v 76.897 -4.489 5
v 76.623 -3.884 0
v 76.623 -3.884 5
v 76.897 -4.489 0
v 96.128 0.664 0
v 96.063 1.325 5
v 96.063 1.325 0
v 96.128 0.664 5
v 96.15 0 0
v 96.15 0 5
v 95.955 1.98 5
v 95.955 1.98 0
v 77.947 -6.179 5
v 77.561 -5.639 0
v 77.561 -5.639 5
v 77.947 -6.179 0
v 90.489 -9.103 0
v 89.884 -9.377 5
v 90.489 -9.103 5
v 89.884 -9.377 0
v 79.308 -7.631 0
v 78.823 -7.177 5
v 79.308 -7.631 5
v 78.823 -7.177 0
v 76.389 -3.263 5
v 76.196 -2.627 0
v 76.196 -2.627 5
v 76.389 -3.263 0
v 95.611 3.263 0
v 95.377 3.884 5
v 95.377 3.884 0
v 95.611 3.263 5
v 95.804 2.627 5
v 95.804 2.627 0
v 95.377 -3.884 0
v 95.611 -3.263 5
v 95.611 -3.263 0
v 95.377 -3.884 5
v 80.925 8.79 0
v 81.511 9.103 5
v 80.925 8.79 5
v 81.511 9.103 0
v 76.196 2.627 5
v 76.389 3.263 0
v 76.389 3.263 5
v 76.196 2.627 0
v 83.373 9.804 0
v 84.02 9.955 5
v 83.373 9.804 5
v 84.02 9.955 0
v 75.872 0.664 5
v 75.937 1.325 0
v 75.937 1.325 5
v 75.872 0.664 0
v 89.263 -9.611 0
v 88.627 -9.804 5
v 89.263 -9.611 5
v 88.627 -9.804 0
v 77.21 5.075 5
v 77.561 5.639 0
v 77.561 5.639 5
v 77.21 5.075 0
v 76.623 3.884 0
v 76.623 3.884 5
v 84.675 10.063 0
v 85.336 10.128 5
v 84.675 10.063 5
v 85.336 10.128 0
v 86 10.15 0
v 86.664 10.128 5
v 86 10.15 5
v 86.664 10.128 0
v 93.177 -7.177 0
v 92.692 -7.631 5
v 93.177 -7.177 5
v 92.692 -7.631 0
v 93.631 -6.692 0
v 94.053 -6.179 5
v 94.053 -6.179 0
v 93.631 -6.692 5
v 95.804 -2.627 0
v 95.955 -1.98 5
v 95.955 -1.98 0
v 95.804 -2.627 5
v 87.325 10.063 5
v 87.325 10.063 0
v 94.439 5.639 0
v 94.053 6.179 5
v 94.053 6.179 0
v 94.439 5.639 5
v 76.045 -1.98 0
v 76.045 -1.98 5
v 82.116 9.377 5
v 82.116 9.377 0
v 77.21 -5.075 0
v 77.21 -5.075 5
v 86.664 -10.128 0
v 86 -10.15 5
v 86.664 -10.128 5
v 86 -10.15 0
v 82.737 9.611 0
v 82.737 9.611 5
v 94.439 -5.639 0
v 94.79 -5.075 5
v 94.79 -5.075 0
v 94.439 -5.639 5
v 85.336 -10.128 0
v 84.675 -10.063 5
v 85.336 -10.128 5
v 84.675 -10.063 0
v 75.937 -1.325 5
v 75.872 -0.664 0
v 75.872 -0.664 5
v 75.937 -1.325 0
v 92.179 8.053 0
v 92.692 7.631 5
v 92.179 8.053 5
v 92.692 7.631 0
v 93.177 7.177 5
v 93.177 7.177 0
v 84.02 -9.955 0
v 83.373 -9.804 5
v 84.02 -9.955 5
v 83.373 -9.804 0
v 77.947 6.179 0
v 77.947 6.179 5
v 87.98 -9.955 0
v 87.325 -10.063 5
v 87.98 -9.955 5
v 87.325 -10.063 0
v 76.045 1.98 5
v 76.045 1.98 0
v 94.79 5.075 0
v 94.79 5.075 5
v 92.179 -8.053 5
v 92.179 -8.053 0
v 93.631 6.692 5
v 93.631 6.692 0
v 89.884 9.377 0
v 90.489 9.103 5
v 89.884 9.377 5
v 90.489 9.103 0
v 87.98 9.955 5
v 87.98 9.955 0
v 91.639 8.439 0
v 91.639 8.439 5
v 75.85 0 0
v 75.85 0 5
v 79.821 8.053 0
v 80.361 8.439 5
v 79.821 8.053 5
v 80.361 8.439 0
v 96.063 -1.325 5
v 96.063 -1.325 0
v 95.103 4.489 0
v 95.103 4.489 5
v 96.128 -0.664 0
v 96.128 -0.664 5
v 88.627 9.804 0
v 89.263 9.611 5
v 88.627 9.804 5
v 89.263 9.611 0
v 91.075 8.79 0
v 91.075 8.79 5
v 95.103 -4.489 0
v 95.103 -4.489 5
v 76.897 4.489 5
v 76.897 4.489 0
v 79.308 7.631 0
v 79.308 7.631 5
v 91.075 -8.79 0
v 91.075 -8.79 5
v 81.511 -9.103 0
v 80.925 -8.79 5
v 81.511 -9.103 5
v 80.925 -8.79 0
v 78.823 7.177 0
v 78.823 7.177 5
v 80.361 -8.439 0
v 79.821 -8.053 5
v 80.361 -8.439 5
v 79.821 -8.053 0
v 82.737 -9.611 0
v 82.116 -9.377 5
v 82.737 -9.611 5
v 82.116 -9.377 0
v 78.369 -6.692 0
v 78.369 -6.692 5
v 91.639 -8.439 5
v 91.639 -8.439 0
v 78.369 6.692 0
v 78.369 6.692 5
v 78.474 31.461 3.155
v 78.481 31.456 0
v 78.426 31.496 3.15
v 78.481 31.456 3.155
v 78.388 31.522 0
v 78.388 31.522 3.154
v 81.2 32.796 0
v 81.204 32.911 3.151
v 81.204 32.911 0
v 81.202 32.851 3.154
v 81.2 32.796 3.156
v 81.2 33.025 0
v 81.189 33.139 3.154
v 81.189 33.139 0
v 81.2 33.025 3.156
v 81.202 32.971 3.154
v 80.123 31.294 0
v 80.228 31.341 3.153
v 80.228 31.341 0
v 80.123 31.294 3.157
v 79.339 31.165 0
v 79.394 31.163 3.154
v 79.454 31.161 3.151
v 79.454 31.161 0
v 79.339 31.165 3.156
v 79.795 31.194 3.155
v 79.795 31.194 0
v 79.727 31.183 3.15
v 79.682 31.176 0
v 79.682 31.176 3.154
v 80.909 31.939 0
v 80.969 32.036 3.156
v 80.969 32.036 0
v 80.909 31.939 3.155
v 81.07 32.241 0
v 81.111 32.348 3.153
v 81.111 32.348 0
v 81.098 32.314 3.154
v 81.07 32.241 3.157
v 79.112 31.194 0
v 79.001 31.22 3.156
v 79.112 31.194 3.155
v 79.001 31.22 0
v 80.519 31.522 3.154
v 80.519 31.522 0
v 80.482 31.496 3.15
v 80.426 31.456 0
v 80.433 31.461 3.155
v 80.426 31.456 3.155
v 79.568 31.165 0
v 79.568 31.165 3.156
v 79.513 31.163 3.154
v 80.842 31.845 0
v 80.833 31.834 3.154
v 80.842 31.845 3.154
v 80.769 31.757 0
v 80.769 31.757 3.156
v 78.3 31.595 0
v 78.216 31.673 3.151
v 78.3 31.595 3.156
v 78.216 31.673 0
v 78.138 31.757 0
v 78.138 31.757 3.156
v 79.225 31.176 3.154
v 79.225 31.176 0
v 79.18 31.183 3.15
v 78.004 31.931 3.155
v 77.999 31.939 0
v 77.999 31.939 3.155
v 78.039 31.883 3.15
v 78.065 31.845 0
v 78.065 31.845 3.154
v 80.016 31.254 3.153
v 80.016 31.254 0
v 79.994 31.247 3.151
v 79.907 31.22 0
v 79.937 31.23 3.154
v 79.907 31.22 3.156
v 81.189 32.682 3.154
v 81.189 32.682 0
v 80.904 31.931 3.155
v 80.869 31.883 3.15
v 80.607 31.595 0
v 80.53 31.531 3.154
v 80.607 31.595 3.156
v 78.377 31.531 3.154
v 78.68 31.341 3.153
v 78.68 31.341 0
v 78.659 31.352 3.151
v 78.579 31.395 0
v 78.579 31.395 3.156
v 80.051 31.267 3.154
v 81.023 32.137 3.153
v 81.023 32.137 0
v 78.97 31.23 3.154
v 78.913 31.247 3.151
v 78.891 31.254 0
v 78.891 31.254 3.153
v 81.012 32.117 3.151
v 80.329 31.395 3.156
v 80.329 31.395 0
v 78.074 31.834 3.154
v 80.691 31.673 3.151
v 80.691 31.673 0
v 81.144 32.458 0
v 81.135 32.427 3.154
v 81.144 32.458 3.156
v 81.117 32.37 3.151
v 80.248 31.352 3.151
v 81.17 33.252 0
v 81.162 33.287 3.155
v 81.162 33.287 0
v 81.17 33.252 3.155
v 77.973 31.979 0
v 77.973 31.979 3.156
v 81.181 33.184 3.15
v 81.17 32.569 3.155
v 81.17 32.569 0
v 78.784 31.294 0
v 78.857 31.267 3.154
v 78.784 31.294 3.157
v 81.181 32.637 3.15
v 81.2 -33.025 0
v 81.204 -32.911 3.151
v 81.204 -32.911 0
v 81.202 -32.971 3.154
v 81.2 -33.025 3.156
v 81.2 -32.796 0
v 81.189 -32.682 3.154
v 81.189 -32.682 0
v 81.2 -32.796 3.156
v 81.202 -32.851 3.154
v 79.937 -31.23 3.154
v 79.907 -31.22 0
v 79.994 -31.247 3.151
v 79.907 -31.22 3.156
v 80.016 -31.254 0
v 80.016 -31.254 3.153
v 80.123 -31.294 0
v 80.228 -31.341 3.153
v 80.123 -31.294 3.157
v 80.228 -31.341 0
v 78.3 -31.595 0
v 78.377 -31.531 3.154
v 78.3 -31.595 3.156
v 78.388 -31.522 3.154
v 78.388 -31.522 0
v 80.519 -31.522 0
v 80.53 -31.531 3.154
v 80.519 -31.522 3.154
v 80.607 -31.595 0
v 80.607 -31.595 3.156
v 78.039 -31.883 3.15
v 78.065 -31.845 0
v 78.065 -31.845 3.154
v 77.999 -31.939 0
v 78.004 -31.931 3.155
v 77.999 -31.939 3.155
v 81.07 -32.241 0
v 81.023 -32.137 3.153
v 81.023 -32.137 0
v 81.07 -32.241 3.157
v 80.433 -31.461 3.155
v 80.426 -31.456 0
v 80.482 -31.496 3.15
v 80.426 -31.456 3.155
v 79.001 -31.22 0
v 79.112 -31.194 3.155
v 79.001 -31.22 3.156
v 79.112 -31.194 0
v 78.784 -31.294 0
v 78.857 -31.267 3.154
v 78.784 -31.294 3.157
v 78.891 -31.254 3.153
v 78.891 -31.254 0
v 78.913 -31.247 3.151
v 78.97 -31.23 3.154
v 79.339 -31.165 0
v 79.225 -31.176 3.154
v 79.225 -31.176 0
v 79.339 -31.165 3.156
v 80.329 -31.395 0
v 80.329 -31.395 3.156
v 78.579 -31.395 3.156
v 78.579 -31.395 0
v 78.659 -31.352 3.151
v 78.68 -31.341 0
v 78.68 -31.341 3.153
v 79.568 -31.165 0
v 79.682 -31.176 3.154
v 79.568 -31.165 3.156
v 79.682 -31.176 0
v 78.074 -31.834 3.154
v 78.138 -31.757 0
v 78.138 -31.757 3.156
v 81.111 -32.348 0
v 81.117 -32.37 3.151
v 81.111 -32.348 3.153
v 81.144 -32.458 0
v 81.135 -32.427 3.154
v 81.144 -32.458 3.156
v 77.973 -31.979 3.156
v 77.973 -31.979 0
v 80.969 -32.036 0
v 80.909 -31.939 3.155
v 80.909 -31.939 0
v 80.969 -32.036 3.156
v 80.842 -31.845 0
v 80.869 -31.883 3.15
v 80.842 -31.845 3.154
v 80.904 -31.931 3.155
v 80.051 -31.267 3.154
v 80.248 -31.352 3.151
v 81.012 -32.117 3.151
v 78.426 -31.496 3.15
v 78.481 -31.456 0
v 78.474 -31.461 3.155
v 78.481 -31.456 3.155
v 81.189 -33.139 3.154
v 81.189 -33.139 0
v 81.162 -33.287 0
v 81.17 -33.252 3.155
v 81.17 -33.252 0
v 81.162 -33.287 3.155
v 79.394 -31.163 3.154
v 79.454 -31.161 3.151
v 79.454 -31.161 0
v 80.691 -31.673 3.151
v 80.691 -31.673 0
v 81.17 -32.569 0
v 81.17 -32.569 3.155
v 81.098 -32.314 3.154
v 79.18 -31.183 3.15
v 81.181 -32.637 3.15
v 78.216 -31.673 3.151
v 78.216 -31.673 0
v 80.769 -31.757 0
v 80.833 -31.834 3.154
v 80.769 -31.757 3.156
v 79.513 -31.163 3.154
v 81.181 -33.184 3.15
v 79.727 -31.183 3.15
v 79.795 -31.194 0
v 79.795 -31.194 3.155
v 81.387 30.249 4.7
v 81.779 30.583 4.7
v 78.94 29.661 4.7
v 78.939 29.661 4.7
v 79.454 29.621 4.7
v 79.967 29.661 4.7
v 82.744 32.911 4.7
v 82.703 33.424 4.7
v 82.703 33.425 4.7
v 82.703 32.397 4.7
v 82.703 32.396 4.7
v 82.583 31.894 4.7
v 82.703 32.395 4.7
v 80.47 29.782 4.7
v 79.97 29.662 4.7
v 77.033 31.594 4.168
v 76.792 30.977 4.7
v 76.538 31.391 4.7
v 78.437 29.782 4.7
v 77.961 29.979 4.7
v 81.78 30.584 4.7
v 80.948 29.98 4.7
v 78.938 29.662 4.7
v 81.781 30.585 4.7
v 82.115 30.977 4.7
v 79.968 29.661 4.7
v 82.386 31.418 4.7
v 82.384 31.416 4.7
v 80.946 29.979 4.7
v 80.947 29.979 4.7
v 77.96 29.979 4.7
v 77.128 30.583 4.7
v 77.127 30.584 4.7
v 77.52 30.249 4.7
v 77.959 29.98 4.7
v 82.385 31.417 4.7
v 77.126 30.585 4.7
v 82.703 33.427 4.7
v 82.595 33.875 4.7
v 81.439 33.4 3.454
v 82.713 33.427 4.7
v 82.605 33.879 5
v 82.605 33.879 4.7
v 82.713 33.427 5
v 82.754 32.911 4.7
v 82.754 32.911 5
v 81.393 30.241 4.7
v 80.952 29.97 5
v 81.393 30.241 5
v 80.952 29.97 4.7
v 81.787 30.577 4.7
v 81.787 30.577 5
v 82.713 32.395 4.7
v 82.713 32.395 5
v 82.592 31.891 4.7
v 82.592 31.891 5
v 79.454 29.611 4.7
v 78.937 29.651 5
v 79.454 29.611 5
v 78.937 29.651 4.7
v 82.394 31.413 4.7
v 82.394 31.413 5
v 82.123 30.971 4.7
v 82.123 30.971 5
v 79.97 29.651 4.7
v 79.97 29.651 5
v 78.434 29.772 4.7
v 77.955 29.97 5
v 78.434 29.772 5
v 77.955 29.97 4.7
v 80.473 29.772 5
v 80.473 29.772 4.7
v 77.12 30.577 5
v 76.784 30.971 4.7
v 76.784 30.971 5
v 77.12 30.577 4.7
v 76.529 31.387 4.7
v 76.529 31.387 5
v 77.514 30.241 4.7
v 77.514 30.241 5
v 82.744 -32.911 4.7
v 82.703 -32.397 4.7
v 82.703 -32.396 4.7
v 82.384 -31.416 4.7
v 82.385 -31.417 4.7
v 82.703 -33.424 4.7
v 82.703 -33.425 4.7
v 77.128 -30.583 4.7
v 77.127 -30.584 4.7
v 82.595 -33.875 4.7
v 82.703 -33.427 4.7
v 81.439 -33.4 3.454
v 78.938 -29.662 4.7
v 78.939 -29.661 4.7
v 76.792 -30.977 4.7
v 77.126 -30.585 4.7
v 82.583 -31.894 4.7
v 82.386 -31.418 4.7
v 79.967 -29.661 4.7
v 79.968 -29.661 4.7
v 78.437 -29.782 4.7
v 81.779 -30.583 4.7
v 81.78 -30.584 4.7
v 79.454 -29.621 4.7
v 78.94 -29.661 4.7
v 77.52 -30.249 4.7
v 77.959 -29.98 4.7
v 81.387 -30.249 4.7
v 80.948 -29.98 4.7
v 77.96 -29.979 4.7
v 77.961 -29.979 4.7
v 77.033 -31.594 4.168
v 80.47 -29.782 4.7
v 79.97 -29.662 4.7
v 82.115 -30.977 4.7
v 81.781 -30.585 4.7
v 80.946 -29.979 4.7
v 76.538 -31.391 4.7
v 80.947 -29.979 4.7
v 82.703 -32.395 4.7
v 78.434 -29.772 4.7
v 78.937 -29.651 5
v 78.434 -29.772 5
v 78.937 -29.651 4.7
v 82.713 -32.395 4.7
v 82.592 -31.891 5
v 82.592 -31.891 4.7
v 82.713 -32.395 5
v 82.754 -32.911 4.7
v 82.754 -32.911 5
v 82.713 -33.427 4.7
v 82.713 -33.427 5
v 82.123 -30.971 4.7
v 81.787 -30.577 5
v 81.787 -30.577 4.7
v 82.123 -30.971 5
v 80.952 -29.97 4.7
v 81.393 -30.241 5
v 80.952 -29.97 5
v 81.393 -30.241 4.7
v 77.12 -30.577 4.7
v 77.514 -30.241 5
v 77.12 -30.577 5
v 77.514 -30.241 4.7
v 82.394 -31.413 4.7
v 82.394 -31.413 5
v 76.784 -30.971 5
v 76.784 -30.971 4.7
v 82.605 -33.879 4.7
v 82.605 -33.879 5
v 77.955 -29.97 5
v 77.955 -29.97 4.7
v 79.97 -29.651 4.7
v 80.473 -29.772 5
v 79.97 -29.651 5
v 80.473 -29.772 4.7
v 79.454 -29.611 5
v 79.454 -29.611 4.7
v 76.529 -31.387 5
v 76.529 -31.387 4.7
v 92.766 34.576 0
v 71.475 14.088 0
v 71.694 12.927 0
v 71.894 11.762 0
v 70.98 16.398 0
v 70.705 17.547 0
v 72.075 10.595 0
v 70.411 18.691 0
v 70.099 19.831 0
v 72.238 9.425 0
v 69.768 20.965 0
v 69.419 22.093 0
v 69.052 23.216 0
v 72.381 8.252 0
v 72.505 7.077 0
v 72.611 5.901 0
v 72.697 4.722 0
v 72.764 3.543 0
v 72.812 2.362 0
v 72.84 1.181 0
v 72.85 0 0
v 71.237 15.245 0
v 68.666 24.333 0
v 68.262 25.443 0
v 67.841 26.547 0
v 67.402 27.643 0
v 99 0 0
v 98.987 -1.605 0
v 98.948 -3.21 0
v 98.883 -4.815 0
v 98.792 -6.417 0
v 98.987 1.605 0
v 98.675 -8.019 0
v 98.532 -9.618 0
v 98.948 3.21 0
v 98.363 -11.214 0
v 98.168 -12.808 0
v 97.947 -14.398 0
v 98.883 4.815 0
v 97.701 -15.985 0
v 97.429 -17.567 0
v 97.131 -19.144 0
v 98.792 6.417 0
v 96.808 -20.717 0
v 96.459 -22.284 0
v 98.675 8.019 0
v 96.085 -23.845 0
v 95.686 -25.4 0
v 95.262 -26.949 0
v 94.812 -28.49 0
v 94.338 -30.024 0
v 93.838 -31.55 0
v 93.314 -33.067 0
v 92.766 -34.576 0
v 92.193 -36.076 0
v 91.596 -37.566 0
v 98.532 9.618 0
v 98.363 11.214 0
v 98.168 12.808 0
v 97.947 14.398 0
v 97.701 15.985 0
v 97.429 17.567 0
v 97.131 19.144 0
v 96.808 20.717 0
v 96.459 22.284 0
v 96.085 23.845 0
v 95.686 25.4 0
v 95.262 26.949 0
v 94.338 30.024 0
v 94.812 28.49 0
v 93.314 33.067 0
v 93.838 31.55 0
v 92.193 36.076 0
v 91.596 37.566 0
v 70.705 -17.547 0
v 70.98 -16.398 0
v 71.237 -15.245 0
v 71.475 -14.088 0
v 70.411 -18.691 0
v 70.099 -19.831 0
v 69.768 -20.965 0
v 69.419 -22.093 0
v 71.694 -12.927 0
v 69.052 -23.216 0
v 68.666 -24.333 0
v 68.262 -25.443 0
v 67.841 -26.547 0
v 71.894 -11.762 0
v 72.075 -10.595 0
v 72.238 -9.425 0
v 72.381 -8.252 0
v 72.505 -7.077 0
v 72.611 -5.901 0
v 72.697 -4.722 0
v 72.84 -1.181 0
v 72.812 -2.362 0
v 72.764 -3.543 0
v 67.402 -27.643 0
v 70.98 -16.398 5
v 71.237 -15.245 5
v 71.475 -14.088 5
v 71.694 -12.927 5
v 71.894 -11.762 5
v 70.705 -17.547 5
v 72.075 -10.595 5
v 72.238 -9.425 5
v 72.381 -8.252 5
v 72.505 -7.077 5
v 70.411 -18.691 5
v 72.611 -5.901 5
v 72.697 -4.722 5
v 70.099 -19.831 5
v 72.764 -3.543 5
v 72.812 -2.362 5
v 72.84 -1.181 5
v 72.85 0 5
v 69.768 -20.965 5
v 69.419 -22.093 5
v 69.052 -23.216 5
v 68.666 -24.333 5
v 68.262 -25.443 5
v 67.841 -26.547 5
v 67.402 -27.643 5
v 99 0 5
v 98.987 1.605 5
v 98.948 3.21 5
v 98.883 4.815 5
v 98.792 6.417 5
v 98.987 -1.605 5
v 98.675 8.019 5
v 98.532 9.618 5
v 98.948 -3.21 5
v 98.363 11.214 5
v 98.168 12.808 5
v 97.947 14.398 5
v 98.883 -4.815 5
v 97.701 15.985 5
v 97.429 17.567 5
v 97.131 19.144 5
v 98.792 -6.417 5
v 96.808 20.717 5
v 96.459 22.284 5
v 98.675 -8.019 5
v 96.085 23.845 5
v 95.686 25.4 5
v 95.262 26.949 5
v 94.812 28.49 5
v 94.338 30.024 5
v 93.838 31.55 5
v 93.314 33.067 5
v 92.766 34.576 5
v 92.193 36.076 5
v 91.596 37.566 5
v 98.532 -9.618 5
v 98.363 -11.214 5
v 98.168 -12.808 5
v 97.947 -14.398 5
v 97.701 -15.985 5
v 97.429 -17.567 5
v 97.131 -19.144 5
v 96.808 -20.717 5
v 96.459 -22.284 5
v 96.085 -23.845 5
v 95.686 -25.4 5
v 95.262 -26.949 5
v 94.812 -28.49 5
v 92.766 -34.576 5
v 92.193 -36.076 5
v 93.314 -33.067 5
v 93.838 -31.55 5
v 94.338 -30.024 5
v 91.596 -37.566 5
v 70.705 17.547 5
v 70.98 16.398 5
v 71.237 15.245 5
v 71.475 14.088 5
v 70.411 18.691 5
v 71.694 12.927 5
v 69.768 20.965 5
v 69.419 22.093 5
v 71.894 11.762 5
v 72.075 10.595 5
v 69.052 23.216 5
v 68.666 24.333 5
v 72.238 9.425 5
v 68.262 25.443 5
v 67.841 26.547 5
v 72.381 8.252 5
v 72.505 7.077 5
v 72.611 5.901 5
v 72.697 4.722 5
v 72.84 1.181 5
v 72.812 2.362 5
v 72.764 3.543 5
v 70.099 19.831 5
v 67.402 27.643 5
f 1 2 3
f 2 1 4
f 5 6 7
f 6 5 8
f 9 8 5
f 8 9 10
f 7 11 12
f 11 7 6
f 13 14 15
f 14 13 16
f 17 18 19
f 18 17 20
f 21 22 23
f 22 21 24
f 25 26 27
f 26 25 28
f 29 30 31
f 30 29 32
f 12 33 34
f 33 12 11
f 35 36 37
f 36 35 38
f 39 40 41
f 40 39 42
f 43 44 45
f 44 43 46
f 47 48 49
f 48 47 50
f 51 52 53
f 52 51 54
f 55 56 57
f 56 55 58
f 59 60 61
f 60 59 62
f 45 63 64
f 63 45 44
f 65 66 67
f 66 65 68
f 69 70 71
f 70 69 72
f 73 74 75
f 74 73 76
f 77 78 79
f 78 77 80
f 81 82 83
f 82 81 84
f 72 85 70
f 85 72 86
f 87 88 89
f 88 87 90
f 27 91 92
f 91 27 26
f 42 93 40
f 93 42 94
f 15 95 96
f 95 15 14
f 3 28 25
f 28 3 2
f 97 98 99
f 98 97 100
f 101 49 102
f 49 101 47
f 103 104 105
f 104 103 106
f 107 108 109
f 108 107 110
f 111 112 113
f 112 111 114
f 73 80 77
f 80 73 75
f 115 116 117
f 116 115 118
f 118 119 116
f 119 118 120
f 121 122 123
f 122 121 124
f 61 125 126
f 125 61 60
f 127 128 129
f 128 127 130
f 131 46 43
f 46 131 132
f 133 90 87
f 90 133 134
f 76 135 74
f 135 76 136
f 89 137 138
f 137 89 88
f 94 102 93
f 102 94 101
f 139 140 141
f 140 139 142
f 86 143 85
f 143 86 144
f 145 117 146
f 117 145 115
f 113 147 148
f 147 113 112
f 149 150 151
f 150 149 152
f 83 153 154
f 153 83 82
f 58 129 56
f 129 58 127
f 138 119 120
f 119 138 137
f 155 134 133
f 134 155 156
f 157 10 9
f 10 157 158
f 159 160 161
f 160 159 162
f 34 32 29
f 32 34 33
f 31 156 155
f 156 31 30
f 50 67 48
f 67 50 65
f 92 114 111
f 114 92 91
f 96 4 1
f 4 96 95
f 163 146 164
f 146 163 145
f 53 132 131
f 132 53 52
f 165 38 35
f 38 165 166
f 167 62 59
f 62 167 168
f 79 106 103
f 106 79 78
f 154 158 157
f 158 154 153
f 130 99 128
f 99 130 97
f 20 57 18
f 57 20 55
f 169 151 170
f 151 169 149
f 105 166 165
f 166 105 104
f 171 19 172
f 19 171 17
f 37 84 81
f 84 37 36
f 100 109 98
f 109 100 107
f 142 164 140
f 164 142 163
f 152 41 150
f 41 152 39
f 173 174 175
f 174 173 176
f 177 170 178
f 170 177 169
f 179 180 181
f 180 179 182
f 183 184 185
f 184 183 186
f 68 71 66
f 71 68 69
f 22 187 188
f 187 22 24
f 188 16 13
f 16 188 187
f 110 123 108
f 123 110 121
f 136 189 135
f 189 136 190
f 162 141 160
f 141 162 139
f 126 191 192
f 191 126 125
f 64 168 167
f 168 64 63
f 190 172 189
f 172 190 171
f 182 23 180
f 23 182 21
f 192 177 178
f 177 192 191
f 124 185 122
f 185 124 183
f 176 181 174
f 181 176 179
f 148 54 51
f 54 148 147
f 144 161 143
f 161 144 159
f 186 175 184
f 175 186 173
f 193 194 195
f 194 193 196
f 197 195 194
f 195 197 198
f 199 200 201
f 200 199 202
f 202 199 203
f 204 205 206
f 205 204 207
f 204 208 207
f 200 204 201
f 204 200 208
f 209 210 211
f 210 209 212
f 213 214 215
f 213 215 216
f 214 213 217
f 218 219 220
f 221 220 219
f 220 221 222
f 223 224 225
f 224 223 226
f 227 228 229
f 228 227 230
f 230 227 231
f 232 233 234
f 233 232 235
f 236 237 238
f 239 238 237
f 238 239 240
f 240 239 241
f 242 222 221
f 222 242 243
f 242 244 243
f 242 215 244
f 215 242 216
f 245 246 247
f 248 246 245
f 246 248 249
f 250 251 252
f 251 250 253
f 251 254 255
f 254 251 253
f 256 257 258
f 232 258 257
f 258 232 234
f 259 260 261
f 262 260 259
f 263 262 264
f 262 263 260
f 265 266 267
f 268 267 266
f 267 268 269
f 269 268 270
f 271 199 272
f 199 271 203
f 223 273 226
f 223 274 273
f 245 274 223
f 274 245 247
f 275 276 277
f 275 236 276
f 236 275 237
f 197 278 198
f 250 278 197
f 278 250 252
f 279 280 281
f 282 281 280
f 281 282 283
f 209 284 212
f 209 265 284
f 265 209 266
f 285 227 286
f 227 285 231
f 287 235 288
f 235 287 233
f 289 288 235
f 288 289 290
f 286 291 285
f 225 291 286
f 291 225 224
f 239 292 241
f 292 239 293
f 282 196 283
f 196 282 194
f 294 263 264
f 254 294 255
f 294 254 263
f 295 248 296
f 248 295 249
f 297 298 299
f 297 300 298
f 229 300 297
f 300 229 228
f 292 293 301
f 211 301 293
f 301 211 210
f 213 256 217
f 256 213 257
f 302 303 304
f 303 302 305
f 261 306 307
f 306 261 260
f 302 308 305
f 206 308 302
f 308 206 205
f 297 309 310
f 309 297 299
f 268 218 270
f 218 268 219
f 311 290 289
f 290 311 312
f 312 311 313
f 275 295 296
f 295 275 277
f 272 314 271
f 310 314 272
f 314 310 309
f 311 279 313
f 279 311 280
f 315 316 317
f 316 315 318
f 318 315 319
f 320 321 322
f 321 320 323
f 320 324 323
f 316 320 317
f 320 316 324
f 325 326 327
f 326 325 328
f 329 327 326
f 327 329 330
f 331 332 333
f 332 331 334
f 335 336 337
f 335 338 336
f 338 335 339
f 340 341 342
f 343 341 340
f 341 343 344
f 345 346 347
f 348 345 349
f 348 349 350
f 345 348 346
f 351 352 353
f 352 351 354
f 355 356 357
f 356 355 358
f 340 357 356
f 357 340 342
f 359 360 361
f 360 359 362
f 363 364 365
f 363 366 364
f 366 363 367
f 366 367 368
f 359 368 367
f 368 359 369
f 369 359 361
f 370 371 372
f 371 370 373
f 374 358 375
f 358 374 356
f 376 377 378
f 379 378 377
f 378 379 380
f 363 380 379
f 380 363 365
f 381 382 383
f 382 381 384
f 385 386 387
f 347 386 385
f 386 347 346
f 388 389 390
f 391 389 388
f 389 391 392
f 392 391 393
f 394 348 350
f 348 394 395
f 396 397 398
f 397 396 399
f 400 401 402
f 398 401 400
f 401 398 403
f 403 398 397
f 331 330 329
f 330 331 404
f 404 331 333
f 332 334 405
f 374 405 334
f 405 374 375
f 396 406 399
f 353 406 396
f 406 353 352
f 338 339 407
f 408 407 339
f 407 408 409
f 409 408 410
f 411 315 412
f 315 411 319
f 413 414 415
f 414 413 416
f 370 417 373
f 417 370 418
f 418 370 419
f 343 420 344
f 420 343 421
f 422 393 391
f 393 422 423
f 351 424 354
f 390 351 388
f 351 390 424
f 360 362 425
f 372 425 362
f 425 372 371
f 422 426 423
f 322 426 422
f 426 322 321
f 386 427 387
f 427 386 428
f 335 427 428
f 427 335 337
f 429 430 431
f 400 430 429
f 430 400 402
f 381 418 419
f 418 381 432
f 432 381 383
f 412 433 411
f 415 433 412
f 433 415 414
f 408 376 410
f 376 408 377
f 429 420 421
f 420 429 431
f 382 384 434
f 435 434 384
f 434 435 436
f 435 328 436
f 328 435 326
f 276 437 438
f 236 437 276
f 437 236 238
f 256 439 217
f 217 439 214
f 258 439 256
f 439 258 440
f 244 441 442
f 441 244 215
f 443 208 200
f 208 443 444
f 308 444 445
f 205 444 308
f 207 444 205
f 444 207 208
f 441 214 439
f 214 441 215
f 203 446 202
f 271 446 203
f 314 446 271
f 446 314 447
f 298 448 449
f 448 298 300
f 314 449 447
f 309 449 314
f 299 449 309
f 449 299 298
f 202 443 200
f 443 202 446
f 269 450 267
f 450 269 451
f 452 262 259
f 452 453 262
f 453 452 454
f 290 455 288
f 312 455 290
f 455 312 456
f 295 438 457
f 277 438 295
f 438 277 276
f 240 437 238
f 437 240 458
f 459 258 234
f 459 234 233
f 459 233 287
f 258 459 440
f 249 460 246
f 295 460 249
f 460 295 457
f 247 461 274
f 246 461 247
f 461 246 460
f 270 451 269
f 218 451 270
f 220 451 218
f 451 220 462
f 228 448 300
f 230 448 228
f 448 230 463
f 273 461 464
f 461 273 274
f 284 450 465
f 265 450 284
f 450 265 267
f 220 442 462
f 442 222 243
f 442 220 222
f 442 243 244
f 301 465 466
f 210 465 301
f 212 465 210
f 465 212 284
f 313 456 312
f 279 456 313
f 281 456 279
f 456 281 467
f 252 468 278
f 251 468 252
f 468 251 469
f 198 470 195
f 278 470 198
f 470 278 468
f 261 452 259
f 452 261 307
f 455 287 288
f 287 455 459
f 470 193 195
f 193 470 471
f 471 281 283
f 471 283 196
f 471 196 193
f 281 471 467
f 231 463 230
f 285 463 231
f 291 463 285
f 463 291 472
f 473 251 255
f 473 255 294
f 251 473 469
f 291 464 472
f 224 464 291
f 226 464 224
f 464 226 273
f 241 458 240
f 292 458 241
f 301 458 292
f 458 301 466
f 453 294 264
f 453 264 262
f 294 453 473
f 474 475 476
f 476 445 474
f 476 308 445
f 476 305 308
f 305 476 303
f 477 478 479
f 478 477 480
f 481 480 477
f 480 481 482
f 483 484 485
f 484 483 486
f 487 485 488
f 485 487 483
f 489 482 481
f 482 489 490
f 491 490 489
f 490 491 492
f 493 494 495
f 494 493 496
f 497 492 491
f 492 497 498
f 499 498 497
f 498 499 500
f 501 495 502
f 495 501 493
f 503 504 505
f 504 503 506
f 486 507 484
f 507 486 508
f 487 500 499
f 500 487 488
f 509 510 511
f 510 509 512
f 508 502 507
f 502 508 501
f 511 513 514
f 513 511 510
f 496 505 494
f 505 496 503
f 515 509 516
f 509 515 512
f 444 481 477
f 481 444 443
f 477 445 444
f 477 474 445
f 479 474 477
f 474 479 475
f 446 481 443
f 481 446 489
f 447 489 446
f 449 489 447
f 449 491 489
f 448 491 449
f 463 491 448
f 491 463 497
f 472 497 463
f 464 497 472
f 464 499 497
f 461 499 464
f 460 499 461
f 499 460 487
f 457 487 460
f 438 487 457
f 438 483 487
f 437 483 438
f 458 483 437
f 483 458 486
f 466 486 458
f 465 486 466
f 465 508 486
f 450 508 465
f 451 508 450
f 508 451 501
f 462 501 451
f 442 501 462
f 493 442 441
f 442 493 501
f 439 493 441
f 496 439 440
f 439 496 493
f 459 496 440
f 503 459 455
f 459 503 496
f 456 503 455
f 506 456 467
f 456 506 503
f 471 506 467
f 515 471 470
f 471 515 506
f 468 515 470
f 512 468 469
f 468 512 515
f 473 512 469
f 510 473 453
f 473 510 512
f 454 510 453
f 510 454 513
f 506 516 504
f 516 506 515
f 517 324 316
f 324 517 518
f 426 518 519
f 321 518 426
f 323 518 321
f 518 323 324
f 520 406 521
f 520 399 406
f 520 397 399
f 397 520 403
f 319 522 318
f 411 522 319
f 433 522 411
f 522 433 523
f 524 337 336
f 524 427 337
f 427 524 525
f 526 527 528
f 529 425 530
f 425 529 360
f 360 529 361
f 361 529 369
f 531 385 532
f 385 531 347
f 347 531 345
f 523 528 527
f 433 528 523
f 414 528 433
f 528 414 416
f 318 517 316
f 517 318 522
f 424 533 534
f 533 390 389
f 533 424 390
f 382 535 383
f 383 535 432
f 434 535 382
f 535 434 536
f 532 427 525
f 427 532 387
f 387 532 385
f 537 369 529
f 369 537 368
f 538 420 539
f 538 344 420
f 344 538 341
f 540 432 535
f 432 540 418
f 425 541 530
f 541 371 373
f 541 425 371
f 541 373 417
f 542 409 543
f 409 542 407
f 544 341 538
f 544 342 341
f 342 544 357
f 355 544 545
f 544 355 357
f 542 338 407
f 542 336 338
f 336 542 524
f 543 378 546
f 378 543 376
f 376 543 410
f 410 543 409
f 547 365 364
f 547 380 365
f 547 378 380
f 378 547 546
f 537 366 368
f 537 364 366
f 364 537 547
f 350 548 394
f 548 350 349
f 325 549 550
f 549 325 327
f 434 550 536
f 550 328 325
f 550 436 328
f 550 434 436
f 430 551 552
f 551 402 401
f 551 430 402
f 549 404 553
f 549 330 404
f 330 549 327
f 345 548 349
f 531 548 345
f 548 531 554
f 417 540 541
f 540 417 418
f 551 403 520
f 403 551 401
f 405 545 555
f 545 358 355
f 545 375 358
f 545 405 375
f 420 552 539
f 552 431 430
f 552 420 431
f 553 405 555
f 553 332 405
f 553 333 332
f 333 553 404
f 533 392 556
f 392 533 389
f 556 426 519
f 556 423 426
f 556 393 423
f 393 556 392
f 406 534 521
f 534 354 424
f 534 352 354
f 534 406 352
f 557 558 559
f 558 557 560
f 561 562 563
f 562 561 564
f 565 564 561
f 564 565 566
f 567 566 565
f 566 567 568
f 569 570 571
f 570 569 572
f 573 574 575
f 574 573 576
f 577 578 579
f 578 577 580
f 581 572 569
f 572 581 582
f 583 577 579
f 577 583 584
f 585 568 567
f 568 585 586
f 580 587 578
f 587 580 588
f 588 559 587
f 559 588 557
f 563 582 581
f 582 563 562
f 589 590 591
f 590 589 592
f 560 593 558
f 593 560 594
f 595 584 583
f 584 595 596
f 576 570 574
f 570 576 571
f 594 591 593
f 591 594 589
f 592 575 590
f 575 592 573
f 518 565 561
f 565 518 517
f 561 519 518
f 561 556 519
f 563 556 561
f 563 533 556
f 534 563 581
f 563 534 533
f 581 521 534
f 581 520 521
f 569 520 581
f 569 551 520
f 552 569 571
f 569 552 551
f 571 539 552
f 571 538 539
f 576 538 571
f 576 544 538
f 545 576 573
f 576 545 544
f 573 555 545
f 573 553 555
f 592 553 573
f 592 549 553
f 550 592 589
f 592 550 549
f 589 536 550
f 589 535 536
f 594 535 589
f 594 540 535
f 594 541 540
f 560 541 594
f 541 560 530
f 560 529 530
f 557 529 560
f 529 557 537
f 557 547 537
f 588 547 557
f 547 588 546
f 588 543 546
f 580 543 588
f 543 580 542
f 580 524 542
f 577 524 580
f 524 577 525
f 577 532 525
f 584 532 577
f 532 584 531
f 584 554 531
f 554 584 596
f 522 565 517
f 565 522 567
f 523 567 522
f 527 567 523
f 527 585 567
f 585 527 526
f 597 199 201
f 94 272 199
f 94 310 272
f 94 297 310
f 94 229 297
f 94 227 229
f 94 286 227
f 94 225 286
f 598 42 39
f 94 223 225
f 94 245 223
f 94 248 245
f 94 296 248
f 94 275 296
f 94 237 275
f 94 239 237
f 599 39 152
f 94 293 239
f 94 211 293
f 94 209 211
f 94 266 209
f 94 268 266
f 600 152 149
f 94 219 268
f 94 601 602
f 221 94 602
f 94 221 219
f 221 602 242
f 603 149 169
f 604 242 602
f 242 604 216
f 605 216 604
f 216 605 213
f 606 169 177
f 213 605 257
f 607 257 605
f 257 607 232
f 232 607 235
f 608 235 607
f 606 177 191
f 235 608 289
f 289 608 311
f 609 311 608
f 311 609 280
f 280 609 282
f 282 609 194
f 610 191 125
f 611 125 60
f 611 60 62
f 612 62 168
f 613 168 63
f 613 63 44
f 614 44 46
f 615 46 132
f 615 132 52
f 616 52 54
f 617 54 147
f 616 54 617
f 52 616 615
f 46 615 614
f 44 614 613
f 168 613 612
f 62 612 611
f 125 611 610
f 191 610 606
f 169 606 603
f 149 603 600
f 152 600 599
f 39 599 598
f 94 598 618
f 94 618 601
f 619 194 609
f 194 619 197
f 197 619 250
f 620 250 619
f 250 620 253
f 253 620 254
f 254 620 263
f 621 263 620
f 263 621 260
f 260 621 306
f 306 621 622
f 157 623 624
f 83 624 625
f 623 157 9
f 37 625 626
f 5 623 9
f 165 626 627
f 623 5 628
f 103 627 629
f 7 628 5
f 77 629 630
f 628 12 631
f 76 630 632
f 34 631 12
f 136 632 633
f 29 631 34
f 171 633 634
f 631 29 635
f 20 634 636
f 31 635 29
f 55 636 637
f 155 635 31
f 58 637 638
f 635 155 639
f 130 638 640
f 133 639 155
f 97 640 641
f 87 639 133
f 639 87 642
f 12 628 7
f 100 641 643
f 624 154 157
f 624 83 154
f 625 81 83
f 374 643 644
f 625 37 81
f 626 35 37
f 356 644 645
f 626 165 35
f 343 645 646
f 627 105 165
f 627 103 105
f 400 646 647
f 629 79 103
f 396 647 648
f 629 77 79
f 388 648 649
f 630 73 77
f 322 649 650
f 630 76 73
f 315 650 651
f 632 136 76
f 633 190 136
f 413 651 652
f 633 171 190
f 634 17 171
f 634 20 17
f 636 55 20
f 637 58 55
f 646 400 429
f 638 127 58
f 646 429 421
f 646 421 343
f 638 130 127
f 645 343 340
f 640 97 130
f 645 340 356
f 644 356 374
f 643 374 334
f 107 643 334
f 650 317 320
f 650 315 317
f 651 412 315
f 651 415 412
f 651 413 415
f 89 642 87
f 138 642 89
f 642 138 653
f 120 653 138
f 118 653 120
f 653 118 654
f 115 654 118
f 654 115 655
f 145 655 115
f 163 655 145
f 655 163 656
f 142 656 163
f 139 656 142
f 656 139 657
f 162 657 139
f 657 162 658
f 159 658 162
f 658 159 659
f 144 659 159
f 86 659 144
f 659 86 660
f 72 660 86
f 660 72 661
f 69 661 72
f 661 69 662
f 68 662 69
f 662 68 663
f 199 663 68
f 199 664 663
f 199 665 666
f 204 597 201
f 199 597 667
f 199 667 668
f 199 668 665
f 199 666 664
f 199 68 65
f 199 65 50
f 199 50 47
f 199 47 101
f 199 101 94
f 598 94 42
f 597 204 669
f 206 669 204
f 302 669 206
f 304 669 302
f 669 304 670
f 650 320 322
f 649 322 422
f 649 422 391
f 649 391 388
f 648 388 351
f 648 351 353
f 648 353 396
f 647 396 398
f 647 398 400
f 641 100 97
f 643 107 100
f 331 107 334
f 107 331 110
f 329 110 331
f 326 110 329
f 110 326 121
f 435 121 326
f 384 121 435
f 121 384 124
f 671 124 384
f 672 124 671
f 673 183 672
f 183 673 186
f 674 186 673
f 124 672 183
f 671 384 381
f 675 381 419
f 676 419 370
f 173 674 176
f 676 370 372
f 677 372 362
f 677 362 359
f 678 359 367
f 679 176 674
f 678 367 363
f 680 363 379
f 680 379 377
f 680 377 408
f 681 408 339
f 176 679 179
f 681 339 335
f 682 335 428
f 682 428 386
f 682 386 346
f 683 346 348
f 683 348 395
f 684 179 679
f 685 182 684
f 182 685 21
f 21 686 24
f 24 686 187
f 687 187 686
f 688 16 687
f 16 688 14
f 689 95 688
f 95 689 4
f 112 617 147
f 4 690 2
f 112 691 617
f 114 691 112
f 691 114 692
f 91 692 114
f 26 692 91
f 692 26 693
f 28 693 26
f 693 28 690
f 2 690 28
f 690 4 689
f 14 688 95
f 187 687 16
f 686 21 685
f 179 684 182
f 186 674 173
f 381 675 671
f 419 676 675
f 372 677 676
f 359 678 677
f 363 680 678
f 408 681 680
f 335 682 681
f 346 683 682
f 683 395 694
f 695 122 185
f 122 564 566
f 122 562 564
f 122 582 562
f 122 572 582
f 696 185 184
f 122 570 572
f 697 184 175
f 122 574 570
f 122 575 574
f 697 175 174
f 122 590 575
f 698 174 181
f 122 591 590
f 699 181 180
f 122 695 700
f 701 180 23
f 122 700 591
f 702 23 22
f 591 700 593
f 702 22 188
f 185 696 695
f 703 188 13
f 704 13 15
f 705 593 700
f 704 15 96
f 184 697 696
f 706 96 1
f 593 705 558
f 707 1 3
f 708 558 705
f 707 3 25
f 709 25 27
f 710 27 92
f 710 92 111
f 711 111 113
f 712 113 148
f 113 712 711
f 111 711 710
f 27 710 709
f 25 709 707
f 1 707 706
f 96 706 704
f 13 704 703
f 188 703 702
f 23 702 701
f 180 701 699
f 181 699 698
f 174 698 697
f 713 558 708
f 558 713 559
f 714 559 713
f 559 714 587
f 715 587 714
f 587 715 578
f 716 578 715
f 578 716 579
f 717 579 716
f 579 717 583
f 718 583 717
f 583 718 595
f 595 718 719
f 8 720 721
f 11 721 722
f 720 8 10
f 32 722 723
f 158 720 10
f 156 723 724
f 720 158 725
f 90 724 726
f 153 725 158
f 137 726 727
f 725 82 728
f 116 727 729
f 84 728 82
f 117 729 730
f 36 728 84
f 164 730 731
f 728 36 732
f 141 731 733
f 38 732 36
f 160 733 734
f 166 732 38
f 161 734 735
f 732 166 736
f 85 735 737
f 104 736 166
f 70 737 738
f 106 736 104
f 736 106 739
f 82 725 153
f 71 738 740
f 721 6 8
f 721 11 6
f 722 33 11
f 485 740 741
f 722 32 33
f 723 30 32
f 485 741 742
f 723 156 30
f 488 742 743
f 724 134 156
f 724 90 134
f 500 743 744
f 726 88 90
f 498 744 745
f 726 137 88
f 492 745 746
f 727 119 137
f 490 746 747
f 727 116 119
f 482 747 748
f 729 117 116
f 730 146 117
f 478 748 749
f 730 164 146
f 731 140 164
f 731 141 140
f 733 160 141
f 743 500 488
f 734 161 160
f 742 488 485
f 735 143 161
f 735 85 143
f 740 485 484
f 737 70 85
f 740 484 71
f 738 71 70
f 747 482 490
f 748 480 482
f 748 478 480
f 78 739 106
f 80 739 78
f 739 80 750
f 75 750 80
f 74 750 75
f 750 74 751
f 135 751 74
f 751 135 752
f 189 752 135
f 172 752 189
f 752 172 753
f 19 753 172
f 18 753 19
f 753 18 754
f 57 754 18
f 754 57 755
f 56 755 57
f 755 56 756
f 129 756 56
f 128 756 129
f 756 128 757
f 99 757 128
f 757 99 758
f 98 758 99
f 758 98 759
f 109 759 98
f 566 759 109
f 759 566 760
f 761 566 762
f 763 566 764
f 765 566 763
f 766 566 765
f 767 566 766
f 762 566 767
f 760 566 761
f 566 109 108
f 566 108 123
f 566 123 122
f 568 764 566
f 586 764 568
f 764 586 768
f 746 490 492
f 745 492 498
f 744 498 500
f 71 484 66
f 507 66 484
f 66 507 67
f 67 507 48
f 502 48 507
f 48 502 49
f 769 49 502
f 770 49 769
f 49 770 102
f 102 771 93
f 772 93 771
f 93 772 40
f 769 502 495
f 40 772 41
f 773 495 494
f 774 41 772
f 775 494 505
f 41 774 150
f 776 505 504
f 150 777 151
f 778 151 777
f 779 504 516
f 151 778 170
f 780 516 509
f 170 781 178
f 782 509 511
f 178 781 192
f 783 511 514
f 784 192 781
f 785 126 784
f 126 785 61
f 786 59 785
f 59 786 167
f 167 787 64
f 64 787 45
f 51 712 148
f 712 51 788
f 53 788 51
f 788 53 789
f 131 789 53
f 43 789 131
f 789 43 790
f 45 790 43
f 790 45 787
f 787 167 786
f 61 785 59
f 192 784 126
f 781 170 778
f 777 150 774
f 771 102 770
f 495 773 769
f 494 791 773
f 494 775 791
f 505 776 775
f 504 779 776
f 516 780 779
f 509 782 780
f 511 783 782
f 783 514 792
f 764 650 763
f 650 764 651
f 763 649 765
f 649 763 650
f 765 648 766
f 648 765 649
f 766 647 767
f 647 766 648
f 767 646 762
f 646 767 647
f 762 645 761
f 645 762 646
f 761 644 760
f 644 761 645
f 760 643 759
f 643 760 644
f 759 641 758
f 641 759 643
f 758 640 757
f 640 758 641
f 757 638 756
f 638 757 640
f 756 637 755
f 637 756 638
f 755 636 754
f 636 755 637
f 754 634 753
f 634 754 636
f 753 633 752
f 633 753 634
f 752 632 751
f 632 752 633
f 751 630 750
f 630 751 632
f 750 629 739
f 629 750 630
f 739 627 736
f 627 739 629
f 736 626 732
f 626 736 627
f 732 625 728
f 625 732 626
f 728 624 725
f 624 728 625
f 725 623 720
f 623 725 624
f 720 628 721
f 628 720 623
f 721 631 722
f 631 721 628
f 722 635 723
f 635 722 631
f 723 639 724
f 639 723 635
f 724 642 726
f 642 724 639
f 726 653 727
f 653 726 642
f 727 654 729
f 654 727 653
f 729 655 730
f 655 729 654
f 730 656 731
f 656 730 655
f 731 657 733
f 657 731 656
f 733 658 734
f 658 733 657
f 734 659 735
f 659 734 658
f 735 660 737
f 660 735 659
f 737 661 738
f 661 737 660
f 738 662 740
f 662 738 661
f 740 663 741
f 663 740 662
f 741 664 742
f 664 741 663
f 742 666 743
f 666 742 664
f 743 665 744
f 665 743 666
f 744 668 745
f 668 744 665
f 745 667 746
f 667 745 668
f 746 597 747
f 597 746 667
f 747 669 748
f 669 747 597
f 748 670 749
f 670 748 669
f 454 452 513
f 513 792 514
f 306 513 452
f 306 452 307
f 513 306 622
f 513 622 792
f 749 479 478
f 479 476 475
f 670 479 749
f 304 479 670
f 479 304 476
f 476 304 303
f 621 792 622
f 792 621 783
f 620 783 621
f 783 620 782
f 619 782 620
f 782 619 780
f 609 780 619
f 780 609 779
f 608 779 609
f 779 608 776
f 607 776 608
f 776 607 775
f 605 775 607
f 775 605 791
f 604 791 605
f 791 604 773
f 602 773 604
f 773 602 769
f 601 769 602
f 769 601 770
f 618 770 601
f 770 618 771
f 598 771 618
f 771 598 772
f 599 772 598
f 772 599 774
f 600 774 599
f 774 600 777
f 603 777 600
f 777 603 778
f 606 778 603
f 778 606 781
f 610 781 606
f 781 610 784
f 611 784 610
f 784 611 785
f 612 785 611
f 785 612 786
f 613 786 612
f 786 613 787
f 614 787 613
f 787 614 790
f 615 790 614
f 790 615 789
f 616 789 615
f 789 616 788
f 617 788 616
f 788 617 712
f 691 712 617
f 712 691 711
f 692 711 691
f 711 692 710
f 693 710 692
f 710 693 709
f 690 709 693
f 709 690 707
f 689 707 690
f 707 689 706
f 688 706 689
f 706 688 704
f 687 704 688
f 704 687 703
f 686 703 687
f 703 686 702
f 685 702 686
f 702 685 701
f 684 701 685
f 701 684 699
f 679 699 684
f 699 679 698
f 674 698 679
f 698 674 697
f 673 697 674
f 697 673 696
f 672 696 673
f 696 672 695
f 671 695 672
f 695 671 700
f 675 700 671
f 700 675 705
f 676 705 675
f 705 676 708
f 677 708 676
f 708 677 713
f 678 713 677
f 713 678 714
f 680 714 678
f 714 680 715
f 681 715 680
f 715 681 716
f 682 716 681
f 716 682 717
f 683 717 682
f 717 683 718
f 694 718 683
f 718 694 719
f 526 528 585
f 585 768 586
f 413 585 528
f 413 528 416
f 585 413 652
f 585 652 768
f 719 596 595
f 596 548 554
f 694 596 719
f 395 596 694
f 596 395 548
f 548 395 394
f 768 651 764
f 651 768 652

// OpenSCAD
// file: parameters.scad
// =============================================================================
// Gen-CD — nightly 2026-10-14 (physics_scorer, honest magpylib watts)
// Push past Gen-CA on the same arc-nested one-plate architecture: poles out to R86, bobbins r65–105 × 4.95 mm copper. Full-resolution scorer picks this window at ≈8.56 W (386 m, at the wire budget) with a Ø229 stator that still packs; thinner-copper R86 tips (r65–107 × 4.65) need Ø232+ and would not pack. Same 8 bolt-on arcs/rotor + D-flat hub + open-centre stator + in-place bobbin bases that unlocked Gen-CA.
// Clocking 0 deg (magnets N facing S) + D-flat keyed bore + index notch + flip-symmetric hole map.
// Windable 2-piece bobbin; turns = physics_scorer turns_fit; copper only between flanges.
// Steel back-iron: 2× Ø198 × 4.76 mm (3/16") mild-steel discs (steel_backiron_disc.dxf); magnets sit ON the steel
// (through-pockets) -> score with --back-iron. Night 2026-10-14.
// =============================================================================
topology            = "dual_rotor";

// --- Wire / winding (physics_scorer winding-fit) -------------------------------
wire_awg            = 26;
wire_od             = 0.45;     // insulated OD mm (bare 0.405)
fill_realistic      = 0.65;     // insulated-wire area / window (DENSE layered wind with a jig; scorer cap 0.65)
turns               = 370;       // = physics_scorer turns_fit (do NOT raise)
coil_former_type    = "bobbin";
coil_core_inset     = 18.31;     // radial copper build: hub = copper boundary inset by this
wind_build_axial    = 0.0;      // nothing proud of the flanges
wind_build_radial   = 0.0;

// --- Bobbin (base + lid) ---------------------------------------------------------
coil_id_r           = 65.00;    // copper boundary sector
coil_od_r           = 105.00;
span_deg            = 26.91;    // = pitch - 2*asin((wall+0.85)/coil_id_r) -> >=1.2 mm stator web
former_web          = 4.95;     // copper height between flanges (TALL copper: steel keeps Bz up)
flange_t            = 0.80;     // >= 0.8 mm FDM wall rule (tall winds push on the flanges)
wall                = 0.80;     // flange lip beyond copper
former_bare_h       = former_web + 2 * flange_t;
coil_envelope_h     = former_bare_h + 2 * wind_build_axial;
tab_w               = 7.0;
tab_len             = 7.0;
tab_h               = former_bare_h / 2;
pin_d               = 1.9;      // 1.75 mm filament locating pin
coil_mount_r        = coil_od_r + 0.2 + 4.0;
lead_y              = 1.6;
lead_slot_w         = 0.9;
lead_groove_d       = 0.6;

// --- Gap -------------------------------------------------------------------------
run_clear           = 0.50;     // rotor face -> flange
gap_spacer_h        = run_clear + wind_build_axial;
m2m                 = coil_envelope_h + 2 * run_clear;   // rotor face to rotor face (= gap_sleeve length)

// --- Stator ----------------------------------------------------------------------
coil_stations       = 12;
bay_clear           = 0.35;     // 0.35 mm: bobbin BASES print IN PLACE inside the stator bays (print-in-place gap), then pop out
stator_thick        = former_bare_h;                        // bobbins flush both faces
stator_od           = 229.0;
shaft_clear_stator  = 14.0;     // stator is static; gap sleeve OD 12 spins inside
stator_ir           = 59.85;    // ANNULAR stator: open centre (nested one-plate pack); inner rim 4.0 mm

// --- Rotor(s) --------------------------------------------------------------------
magnet_Br           = 1.43;     // N52
magnet_d_large      = 20.0;
magnet_h_large      = 5.0;      // one O20x5 per pocket
magnet_h_small      = 5.0;      // unused: no O5 pockets in this kit
halbach_magnetisation = "none";  // NO O5 assist magnets in this kit (scan: they lower the 4-pole score)
rotor_b_same_axis   = true;     // same-index magnets share one axis: N faces S across the gap
large_pocket_d      = 20.3;
small_pocket_d      = 5.3;
pocket_h            = 5.00;     // THROUGH the carrier: magnet back face sits on the steel disc (FLUSH seat: carrier = magnet height, magnet face level with the rotor face)
large_n             = 8;
R_large             = 86.0;
small_r_list        = [];       // no O5 pockets
carrier_od          = 198.0;
ring_ir             = 72.85;    // RING rotor: PLA magnet ring r ring_ir..carrier_od/2 (steel disc = structural rotor)
hub_flange_od       = 74.0;     // separate rotor_hub flange (inside the ring, flush with the ring face)
csk_d               = 6.6;      // M3 countersunk head pocket (ISO 10642 head 6.0 nominal) on the stator face
csk_depth           = 1.55;     // = (csk_d - m3_clear) / 2: 90 deg cone; head sits 0.3 mm below the face
n_seg               = 8;        // magnet-carrier ARCS per rotor (segmented carrier)
seg_deg             = 360 / n_seg;
seg_start           = -22.5;   // arc edge angle (between pocket 0 and its clamp bolt)
seg_kerf_deg        = 0.4;      // gap between neighbouring arcs on the steel
carrier_thick       = pocket_h;
hub_h               = 12.0;     // > steel_t + insert: radial set-screw clears the steel
hub_od              = 24.0;     // slim hub so the M4 brace rods fit at R~18 inside the coil ring
hub_insert_d        = 4.0;      // M3 heat-set insert, radial, bears on the D-flat
rotor_b_offset_deg  = 0.0;      // CLOCKING: magnets directly opposite
shaft_key           = "dflat";
dflat_depth         = 0.5;      // 8 mm shaft with 0.5 mm flat (7.5 across flat)
index_notch_d       = 3.0;

// --- Steel back-iron (buyable laser-cut) -------------------------------------------
steel_t             = 4.76;      // mild steel thickness (image method ignores it; sized from steel_flux.py so the return path stays well below saturation)
steel_center_hole   = 26.0;     // slips over the rotor hub (OD 24)
steel_od            = carrier_od;   // steel disc OD = rotor carrier OD

// --- Modular MAX interface ----------------------------------------------------------
shaft_bore          = 8.35;
dflat_x             = 4.0 - dflat_depth + (shaft_bore - 8.0) / 2;
bearing_d           = 21.85;
bearing_h           = 7.2;
m3_clear            = 3.5;
bolt_r_inner        = 30.0;     // M3 steel-disc clamp bolts (inside the magnet ring)
bolt_n_inner        = 4;
bolt_inner_angles   = [0, 90, 180, 270];
bolt_r_outer        = 86.0;     // second M3 steel-disc clamp ring
bolt_outer_angles   = [22.5, 67.5, 112.5, 157.5, 202.5, 247.5, 292.5, 337.5];
flange_bolt_r       = 109.5;     // frame rods: OUTSIDE the rotor OD (rotors spin inside them)
flange_bolt_n       = 4;
flange_bolt_offset  = 45.00;    // between coil stations -> never cuts a lead groove/tab
brace_r             = 18.0;
brace_d             = 4.3;      // temporary M4 jack rods (assembly only)
brace_n             = 4;
brace_angles        = [45, 135, 225, 315];          // flip-symmetric

spacer_pad_od       = 14.0;
spacer_pad_id       = m3_clear;
endbell_od          = 229.0;
endbell_thick       = 8.0;
endbell_shaft_clear = 10.0;
collar_h            = 10.0;
standoff_od         = 9.0;
frame_standoff_h    = run_clear + carrier_thick + hub_h + collar_h + 2.0;
sleeve_od           = 12.0;
plate_max_mm        = 410;

$fn = 64;
// main file
// Gen-CD — rotor A MAGNET-CARRIER ARC (2026-10-14 segmented nested pack). Print x8 per rotor (16 total
// for A+B; A and B arcs are the same print). Each arc covers seg_deg = 360/n_seg of the R_large ring and holds 1 O20 through-pockets
// + 1 countersunk M3 clamp holes (inter-pole, R bolt_r_outer) to the steel disc. The 4.76 mm mild-steel disc is the structural
// rotor; the separate rotor_hub (D-flat) bolts to it at R bolt_r_inner. Arcs pack around/inside the other parts on ONE plate,
// and any arc can be swapped/re-printed on its own (modular magnet carrier).
// CLOCKING: arc j spans [j*seg_deg + seg_start, (j+1)*seg_deg + seg_start - kerf]; pockets at i*360/large_n + rotor_b_offset_deg (= 0).
// The arc's bolt holes sit on the same 8-fold map as the pockets, so every arc position puts pockets on the same steel angles;
// pocket 0 = the pocket over the STEEL index notch (clocked to the hub D-flat). Rotor B arcs = same print, flipped to face A.
// Print countersinks UP (stator face up); the arc lies flat (5 mm), no supports.
include <parameters.scad>;
$fn = 96;
module ring_holes_2d() {
    for (a = bolt_outer_angles) translate([bolt_r_outer*cos(a), bolt_r_outer*sin(a)]) circle(d=m3_clear);
    translate([carrier_od/2, 0]) circle(d=index_notch_d, $fn=24);
}
module hub_holes_2d() {
    for (a = bolt_inner_angles) translate([bolt_r_inner*cos(a), bolt_r_inner*sin(a)]) circle(d=m3_clear);
    for (a = brace_angles) translate([brace_r*cos(a), brace_r*sin(a)]) circle(d=brace_d);
    translate([hub_flange_od/2, 0]) circle(d=index_notch_d, $fn=24);
}
module csk(r, angles) {   // M3 countersunk (ISO 10642, 90 deg) head pocket on the STATOR face, head 0.3 mm below the face
    for (a = angles) translate([r*cos(a), r*sin(a), 0]) {
        translate([0, 0, carrier_thick - 0.3 - csk_depth - 0.2]) cylinder(d1=m3_clear - 0.4, d2=csk_d, h=csk_depth + 0.2 + 0.01, $fn=40);
        translate([0, 0, carrier_thick - 0.3]) cylinder(d=csk_d, h=0.4, $fn=40);
    }
}

off = 0;
module arc_2d() {
    a0 = seg_start + seg_kerf_deg / 2; a1 = seg_start + seg_deg - seg_kerf_deg / 2;
    polygon(concat(
        [for (k = [0 : 48]) let(t = a0 + (a1 - a0) * k / 48) [(carrier_od/2) * cos(t), (carrier_od/2) * sin(t)]],
        [for (k = [48 : -1 : 0]) let(t = a0 + (a1 - a0) * k / 48) [ring_ir * cos(t), ring_ir * sin(t)]]));
}
difference() {
    linear_extrude(carrier_thick) arc_2d();
    for (i = [0 : large_n-1]) {
        a = i * 360 / large_n + off;
        translate([R_large*cos(a), R_large*sin(a), -0.1]) cylinder(d=large_pocket_d, h=carrier_thick + 0.2);
    }
    for (a = bolt_outer_angles) translate([bolt_r_outer*cos(a), bolt_r_outer*sin(a), -0.1]) cylinder(d=m3_clear, h=carrier_thick + 0.2);
    csk(bolt_r_outer, bolt_outer_angles);
}
